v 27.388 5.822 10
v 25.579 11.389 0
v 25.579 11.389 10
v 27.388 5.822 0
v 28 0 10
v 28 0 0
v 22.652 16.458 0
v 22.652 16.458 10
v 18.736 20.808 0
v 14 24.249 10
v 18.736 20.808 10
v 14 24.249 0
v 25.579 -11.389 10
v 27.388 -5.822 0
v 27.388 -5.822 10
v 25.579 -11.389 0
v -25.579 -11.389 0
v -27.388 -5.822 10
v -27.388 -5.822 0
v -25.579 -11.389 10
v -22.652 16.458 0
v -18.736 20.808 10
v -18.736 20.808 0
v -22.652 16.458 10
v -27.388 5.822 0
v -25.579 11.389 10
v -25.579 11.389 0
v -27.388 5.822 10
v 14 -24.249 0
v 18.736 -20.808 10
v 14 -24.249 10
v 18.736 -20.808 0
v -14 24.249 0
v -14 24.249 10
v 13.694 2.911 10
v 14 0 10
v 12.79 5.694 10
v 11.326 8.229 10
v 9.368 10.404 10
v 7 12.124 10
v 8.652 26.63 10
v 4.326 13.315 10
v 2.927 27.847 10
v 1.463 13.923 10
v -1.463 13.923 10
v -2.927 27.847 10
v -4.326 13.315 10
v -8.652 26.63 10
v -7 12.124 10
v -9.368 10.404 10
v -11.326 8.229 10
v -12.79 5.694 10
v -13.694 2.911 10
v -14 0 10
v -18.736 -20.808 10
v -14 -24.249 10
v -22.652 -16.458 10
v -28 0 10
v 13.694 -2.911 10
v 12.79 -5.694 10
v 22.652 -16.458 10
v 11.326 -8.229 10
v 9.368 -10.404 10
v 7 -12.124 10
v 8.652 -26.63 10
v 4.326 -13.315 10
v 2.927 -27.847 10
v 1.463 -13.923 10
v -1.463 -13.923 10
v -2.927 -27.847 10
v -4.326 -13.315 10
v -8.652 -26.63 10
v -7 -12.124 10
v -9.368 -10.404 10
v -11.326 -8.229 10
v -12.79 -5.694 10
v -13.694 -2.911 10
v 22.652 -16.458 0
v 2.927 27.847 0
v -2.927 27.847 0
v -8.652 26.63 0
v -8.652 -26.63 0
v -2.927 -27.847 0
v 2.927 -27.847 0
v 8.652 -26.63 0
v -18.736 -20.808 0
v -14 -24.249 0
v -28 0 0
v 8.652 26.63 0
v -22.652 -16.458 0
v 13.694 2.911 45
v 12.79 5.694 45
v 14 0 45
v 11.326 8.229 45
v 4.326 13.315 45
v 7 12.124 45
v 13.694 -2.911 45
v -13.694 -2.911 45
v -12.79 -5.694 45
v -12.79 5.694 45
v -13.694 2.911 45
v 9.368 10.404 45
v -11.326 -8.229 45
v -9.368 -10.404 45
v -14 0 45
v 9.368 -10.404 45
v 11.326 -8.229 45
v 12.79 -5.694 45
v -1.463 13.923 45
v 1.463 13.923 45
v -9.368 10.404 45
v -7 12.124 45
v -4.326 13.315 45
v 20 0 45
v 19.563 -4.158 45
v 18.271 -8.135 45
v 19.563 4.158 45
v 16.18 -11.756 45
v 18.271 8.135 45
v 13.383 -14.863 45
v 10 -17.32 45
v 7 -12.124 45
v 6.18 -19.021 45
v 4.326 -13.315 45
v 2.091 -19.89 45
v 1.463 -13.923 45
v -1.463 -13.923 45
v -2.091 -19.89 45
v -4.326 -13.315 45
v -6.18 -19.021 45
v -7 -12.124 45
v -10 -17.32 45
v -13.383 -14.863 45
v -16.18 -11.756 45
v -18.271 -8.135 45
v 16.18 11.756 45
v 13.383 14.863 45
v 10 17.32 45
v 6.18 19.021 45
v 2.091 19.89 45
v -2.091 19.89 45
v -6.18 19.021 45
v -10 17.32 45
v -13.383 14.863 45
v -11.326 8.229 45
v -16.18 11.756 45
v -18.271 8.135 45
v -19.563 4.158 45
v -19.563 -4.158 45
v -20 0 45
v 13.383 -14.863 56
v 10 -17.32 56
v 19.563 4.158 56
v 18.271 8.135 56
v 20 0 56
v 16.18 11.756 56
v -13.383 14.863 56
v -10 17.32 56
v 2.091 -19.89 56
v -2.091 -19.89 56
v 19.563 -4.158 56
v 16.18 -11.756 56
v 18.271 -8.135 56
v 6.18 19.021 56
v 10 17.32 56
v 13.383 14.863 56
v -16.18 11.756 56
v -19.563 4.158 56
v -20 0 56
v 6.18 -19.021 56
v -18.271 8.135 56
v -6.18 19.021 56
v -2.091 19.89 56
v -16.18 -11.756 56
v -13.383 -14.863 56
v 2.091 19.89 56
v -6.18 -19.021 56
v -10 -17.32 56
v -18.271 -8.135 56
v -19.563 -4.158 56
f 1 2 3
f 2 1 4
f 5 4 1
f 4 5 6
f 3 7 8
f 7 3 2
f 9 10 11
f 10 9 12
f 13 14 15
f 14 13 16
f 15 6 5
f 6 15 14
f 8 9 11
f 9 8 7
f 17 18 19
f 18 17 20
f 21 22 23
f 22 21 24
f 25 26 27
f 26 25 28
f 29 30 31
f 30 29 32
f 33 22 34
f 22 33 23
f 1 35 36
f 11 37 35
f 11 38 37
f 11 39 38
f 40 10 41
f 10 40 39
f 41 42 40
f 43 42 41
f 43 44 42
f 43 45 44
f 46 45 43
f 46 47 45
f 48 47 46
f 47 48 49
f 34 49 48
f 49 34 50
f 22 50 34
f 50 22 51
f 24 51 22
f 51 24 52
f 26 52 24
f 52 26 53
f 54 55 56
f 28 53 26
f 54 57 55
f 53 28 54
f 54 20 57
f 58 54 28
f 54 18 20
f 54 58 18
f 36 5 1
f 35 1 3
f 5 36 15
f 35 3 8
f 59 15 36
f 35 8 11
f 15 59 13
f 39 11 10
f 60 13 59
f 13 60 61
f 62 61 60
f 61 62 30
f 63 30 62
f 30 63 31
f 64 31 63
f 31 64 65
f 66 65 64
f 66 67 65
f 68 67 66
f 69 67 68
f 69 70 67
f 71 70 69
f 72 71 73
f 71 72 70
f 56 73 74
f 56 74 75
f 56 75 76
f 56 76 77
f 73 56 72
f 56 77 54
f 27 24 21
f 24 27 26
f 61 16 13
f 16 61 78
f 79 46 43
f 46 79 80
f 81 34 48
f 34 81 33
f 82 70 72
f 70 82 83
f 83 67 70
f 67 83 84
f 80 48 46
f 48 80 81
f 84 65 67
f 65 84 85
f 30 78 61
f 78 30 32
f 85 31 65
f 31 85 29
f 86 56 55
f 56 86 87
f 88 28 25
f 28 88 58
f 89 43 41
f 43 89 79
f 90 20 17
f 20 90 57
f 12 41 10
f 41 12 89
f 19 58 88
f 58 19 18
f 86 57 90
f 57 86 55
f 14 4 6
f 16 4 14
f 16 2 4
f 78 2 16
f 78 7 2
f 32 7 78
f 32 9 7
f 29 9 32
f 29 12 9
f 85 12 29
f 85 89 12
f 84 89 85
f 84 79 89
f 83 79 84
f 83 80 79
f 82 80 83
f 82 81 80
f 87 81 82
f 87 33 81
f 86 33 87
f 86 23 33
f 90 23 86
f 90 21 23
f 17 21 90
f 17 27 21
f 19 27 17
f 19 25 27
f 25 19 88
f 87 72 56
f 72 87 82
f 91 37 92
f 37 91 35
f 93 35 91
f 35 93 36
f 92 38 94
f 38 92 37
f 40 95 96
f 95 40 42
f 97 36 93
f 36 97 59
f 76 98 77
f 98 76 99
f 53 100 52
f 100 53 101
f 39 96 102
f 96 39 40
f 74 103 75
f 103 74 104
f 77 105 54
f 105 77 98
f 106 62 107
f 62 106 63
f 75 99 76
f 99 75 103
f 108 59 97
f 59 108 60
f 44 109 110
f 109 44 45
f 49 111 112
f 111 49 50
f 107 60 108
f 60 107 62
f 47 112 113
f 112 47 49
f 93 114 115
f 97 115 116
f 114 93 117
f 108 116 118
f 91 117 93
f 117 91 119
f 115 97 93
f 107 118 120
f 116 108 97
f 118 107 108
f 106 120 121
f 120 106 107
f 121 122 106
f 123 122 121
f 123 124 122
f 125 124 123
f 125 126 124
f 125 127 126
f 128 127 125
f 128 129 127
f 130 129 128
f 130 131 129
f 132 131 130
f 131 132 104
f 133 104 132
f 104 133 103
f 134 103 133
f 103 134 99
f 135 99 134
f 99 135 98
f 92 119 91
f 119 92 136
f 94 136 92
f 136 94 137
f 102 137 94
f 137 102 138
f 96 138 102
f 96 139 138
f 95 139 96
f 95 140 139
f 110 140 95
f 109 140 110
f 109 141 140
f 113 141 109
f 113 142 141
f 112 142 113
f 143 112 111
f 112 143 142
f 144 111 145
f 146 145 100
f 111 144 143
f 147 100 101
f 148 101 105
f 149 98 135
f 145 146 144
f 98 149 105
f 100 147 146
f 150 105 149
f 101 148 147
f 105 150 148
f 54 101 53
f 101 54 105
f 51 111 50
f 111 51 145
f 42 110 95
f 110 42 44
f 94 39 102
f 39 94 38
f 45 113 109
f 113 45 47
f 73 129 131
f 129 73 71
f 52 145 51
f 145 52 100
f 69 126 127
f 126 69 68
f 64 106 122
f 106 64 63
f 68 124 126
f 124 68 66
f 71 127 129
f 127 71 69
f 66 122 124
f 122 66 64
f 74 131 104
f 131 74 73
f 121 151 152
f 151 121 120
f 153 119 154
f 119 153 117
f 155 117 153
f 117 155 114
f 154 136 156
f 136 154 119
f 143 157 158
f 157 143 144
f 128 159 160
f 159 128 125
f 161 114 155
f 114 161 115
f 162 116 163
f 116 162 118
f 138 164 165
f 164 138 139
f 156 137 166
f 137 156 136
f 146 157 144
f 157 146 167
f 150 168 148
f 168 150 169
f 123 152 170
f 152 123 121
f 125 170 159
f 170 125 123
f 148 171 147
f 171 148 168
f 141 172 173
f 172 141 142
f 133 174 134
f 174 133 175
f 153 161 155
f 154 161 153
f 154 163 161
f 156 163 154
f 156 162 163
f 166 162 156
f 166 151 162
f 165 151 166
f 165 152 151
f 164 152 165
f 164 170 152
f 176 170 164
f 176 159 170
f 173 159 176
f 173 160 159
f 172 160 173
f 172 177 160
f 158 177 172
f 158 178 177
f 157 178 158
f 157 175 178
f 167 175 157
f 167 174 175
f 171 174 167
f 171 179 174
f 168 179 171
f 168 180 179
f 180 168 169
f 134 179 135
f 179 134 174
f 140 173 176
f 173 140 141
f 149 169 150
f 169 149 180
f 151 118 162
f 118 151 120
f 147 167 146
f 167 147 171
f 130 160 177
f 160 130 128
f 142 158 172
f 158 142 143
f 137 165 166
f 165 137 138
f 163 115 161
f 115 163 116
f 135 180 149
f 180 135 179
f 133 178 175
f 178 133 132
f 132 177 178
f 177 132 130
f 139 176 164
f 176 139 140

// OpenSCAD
/* doodle-meta {"version":1,"parameters":{"total_height":{"label":"Total Height","description":"Overall height of the knob from base to top","unit":"mm","feature":"overall_height"},"base_diameter":{"label":"Base Diameter","description":"Diameter of the wide bottom flange","unit":"mm","feature":"base_diameter"},"neck_diameter":{"label":"Neck Diameter","description":"Diameter of the narrow middle section","unit":"mm","feature":"neck_diameter"},"head_diameter":{"label":"Head Diameter","description":"Diameter of the wide top section","unit":"mm","feature":"head_diameter"},"base_height":{"label":"Base Height","description":"Height of the bottom flange section","unit":"mm","feature":"base_height"},"head_height":{"label":"Head Height","description":"Height of the top head section","unit":"mm","feature":"head_height"}},"features":{"overall_height":{"kind":"dimension","axis":"z","label":"Total Height"},"base_diameter":{"kind":"dimension","axis":"x","label":"Base Diameter"},"neck_diameter":{"kind":"dimension","axis":"x","label":"Neck Diameter"},"head_diameter":{"kind":"dimension","axis":"x","label":"Head Diameter"},"base_height":{"kind":"dimension","axis":"z","label":"Base Height"},"head_height":{"kind":"dimension","axis":"z","label":"Head Height"}}} */

// Parameters
total_height = 56.0;
base_diameter = 56.0;
neck_diameter = 28.0;
head_diameter = 40.0;
base_height = 10.0;
head_height = 11.0;

// Derived dimensions
base_radius = base_diameter / 2;
neck_radius = neck_diameter / 2;
head_radius = head_diameter / 2;
neck_height = total_height - base_height - head_height;

// Modules
module knob_body() {
    // Base Flange
    translate([0, 0, 0])
        cylinder(h = base_height, r = base_radius, center = false);
    
    // Neck
    translate([0, 0, base_height])
        cylinder(h = neck_height, r = neck_radius, center = false);
    
    // Head
    translate([0, 0, base_height + neck_height])
        cylinder(h = head_height, r = head_radius, center = false);
}

// Main Design
knob_body();
